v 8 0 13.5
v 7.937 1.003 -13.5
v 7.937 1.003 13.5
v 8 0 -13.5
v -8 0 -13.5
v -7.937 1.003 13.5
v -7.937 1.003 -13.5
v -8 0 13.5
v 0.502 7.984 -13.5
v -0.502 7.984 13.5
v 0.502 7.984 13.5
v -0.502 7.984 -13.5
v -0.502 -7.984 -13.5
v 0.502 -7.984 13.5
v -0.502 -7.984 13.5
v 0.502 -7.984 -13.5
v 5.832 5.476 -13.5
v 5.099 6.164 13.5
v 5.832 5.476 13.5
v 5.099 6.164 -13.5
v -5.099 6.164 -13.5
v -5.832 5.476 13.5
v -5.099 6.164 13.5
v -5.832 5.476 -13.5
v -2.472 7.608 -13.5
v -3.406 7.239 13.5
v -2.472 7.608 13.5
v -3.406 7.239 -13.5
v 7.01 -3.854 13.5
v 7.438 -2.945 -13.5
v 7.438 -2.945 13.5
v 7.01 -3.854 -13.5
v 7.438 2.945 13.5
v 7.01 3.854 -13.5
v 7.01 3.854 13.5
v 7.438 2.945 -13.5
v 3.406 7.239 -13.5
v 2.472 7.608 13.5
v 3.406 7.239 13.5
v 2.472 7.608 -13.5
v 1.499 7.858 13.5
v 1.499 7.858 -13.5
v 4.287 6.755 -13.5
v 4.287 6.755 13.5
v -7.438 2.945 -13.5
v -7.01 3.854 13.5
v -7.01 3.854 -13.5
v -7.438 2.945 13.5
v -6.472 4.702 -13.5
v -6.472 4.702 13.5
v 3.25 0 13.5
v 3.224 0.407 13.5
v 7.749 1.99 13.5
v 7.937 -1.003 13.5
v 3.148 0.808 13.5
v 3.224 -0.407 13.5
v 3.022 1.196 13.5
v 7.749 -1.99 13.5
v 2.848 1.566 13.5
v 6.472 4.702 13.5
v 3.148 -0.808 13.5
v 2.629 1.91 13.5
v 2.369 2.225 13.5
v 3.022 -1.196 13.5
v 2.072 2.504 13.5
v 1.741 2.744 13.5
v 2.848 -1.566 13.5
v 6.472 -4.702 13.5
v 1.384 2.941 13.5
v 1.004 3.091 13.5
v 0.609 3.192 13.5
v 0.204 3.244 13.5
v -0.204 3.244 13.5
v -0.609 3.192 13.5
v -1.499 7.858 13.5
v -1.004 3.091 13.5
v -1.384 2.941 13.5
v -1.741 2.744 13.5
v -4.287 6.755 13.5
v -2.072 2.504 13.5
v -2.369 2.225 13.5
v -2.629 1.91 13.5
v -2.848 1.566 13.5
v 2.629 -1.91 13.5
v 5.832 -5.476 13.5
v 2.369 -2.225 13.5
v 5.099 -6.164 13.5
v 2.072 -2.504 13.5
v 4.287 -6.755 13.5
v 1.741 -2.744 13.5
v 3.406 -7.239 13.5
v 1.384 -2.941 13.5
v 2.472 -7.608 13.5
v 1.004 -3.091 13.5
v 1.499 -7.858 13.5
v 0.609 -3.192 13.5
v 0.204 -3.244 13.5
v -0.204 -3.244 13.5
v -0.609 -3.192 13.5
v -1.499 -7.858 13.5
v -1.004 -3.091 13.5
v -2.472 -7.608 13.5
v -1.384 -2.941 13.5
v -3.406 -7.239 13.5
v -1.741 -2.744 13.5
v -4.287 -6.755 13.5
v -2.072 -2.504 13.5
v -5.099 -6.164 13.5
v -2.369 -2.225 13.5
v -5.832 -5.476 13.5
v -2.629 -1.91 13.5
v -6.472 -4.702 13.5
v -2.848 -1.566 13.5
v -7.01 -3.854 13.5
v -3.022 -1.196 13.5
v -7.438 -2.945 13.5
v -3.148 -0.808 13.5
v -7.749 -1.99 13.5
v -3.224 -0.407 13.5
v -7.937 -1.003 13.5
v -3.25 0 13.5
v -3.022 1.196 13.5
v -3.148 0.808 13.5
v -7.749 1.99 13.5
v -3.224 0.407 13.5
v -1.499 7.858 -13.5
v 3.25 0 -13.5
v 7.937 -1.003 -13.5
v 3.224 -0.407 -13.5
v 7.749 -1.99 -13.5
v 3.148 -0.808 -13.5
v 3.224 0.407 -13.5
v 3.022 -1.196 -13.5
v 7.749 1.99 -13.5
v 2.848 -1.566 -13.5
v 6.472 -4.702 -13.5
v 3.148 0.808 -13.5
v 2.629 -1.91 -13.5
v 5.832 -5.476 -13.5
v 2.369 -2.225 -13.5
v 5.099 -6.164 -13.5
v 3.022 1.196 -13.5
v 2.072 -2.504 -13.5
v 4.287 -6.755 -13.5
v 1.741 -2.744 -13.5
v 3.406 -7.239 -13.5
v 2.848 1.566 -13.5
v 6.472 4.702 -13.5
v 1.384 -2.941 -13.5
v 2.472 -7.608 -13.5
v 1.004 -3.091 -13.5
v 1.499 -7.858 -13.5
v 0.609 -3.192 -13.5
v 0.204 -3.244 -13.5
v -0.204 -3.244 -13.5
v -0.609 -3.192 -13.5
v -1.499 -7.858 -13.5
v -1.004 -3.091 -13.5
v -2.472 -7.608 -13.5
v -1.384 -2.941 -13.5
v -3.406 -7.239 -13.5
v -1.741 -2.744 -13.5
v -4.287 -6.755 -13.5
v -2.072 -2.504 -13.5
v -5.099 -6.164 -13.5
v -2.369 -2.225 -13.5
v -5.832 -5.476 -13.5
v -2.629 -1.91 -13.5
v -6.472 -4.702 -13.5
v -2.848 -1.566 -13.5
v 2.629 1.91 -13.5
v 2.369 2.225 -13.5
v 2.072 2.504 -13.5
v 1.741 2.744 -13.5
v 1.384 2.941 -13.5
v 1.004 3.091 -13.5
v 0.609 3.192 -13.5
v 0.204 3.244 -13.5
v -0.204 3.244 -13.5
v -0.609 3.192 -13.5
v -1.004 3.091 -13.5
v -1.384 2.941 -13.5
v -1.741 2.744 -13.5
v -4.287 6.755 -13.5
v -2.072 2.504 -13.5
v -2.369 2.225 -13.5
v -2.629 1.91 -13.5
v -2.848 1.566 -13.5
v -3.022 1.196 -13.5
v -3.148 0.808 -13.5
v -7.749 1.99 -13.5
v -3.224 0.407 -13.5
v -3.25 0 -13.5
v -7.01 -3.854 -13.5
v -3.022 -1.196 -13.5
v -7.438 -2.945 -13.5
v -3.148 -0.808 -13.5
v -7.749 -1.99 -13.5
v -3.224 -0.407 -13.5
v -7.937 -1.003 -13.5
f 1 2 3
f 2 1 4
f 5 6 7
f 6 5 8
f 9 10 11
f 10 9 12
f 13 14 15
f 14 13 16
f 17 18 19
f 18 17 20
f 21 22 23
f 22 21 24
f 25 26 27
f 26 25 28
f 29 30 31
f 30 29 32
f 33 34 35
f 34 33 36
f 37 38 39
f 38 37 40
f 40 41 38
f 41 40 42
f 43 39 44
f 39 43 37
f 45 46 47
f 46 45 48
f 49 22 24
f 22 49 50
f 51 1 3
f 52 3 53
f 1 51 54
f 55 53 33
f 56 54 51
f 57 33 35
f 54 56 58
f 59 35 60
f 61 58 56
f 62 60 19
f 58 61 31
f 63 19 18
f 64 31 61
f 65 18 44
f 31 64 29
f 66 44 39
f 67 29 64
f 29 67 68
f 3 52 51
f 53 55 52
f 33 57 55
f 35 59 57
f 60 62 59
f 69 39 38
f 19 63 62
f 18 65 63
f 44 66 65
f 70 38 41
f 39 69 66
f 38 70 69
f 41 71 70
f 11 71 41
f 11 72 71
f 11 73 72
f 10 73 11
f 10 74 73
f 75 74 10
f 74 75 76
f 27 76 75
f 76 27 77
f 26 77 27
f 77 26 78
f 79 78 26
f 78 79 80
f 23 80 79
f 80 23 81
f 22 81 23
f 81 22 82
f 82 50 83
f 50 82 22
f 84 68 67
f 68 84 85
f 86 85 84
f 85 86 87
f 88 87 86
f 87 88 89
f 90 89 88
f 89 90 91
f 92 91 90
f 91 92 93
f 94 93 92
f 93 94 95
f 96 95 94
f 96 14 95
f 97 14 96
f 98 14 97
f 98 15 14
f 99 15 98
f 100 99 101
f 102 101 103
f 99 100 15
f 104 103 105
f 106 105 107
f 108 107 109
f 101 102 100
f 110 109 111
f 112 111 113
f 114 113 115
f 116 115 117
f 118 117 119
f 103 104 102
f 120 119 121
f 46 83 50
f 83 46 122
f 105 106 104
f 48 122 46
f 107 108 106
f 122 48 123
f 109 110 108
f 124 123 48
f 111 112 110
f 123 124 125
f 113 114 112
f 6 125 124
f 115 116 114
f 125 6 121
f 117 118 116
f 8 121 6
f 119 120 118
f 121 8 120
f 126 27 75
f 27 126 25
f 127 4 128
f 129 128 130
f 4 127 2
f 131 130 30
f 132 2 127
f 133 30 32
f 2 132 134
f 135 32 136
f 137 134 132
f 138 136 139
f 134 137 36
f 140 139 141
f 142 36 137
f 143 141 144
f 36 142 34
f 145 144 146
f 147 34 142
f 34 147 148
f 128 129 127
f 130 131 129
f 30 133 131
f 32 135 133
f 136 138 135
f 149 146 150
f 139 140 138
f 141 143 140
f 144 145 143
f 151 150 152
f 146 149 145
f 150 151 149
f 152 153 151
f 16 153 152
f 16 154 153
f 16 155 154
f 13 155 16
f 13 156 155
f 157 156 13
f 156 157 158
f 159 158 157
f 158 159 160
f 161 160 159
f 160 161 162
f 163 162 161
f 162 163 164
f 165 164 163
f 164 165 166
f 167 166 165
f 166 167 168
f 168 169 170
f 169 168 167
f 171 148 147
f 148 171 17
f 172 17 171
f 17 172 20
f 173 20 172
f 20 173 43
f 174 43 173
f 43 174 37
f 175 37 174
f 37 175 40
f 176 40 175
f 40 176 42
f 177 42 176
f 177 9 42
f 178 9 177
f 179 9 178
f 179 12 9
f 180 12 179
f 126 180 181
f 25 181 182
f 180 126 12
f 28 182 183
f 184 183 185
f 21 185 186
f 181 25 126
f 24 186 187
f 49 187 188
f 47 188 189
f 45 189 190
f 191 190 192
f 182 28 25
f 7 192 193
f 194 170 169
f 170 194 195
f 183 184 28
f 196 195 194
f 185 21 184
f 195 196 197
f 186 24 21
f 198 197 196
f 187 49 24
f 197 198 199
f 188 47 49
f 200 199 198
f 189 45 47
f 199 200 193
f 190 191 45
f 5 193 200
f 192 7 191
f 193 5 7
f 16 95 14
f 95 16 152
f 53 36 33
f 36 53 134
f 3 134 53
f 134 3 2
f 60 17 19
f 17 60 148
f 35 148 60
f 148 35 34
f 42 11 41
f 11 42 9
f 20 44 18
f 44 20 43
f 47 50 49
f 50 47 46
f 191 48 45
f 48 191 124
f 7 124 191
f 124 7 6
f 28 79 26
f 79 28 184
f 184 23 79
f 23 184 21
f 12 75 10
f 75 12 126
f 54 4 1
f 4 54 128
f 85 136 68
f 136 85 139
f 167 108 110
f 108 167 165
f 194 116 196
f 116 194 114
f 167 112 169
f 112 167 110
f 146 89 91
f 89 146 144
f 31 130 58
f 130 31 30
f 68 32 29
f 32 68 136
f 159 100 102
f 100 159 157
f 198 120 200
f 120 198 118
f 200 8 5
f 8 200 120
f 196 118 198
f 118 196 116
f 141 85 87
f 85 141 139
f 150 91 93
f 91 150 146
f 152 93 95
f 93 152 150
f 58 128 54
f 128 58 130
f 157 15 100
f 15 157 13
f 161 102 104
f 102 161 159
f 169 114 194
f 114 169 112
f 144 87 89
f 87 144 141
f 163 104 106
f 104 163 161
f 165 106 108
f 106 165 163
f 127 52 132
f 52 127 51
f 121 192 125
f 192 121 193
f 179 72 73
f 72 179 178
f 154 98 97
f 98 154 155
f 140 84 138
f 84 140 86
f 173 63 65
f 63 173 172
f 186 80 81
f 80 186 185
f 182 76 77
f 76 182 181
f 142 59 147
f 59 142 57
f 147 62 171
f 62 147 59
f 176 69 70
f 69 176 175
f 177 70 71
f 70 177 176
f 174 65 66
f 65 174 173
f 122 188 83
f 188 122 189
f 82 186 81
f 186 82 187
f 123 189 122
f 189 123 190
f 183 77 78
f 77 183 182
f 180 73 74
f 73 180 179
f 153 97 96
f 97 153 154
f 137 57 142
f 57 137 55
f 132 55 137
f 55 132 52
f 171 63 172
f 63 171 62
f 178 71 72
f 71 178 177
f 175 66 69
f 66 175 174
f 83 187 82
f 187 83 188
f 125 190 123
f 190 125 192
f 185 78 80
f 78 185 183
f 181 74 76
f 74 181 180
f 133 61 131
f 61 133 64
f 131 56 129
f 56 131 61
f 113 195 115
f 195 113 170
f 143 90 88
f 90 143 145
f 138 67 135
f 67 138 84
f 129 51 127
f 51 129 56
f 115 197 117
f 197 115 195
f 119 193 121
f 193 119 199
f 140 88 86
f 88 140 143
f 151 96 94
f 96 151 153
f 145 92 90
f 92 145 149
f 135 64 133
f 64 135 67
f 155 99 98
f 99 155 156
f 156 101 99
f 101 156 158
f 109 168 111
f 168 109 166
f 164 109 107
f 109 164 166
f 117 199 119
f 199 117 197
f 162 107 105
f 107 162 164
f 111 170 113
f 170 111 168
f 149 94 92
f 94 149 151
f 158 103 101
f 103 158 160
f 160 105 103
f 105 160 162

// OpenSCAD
$fn = 50;


difference() {
	union() {
		translate(v = [0, 0, -13.5000000000]) {
			cylinder(h = 27, r = 8.0000000000);
		}
	}
	union() {
		translate(v = [0, 0, -100.0000000000]) {
			cylinder(h = 200, r = 3.2500000000);
		}
	}
}
